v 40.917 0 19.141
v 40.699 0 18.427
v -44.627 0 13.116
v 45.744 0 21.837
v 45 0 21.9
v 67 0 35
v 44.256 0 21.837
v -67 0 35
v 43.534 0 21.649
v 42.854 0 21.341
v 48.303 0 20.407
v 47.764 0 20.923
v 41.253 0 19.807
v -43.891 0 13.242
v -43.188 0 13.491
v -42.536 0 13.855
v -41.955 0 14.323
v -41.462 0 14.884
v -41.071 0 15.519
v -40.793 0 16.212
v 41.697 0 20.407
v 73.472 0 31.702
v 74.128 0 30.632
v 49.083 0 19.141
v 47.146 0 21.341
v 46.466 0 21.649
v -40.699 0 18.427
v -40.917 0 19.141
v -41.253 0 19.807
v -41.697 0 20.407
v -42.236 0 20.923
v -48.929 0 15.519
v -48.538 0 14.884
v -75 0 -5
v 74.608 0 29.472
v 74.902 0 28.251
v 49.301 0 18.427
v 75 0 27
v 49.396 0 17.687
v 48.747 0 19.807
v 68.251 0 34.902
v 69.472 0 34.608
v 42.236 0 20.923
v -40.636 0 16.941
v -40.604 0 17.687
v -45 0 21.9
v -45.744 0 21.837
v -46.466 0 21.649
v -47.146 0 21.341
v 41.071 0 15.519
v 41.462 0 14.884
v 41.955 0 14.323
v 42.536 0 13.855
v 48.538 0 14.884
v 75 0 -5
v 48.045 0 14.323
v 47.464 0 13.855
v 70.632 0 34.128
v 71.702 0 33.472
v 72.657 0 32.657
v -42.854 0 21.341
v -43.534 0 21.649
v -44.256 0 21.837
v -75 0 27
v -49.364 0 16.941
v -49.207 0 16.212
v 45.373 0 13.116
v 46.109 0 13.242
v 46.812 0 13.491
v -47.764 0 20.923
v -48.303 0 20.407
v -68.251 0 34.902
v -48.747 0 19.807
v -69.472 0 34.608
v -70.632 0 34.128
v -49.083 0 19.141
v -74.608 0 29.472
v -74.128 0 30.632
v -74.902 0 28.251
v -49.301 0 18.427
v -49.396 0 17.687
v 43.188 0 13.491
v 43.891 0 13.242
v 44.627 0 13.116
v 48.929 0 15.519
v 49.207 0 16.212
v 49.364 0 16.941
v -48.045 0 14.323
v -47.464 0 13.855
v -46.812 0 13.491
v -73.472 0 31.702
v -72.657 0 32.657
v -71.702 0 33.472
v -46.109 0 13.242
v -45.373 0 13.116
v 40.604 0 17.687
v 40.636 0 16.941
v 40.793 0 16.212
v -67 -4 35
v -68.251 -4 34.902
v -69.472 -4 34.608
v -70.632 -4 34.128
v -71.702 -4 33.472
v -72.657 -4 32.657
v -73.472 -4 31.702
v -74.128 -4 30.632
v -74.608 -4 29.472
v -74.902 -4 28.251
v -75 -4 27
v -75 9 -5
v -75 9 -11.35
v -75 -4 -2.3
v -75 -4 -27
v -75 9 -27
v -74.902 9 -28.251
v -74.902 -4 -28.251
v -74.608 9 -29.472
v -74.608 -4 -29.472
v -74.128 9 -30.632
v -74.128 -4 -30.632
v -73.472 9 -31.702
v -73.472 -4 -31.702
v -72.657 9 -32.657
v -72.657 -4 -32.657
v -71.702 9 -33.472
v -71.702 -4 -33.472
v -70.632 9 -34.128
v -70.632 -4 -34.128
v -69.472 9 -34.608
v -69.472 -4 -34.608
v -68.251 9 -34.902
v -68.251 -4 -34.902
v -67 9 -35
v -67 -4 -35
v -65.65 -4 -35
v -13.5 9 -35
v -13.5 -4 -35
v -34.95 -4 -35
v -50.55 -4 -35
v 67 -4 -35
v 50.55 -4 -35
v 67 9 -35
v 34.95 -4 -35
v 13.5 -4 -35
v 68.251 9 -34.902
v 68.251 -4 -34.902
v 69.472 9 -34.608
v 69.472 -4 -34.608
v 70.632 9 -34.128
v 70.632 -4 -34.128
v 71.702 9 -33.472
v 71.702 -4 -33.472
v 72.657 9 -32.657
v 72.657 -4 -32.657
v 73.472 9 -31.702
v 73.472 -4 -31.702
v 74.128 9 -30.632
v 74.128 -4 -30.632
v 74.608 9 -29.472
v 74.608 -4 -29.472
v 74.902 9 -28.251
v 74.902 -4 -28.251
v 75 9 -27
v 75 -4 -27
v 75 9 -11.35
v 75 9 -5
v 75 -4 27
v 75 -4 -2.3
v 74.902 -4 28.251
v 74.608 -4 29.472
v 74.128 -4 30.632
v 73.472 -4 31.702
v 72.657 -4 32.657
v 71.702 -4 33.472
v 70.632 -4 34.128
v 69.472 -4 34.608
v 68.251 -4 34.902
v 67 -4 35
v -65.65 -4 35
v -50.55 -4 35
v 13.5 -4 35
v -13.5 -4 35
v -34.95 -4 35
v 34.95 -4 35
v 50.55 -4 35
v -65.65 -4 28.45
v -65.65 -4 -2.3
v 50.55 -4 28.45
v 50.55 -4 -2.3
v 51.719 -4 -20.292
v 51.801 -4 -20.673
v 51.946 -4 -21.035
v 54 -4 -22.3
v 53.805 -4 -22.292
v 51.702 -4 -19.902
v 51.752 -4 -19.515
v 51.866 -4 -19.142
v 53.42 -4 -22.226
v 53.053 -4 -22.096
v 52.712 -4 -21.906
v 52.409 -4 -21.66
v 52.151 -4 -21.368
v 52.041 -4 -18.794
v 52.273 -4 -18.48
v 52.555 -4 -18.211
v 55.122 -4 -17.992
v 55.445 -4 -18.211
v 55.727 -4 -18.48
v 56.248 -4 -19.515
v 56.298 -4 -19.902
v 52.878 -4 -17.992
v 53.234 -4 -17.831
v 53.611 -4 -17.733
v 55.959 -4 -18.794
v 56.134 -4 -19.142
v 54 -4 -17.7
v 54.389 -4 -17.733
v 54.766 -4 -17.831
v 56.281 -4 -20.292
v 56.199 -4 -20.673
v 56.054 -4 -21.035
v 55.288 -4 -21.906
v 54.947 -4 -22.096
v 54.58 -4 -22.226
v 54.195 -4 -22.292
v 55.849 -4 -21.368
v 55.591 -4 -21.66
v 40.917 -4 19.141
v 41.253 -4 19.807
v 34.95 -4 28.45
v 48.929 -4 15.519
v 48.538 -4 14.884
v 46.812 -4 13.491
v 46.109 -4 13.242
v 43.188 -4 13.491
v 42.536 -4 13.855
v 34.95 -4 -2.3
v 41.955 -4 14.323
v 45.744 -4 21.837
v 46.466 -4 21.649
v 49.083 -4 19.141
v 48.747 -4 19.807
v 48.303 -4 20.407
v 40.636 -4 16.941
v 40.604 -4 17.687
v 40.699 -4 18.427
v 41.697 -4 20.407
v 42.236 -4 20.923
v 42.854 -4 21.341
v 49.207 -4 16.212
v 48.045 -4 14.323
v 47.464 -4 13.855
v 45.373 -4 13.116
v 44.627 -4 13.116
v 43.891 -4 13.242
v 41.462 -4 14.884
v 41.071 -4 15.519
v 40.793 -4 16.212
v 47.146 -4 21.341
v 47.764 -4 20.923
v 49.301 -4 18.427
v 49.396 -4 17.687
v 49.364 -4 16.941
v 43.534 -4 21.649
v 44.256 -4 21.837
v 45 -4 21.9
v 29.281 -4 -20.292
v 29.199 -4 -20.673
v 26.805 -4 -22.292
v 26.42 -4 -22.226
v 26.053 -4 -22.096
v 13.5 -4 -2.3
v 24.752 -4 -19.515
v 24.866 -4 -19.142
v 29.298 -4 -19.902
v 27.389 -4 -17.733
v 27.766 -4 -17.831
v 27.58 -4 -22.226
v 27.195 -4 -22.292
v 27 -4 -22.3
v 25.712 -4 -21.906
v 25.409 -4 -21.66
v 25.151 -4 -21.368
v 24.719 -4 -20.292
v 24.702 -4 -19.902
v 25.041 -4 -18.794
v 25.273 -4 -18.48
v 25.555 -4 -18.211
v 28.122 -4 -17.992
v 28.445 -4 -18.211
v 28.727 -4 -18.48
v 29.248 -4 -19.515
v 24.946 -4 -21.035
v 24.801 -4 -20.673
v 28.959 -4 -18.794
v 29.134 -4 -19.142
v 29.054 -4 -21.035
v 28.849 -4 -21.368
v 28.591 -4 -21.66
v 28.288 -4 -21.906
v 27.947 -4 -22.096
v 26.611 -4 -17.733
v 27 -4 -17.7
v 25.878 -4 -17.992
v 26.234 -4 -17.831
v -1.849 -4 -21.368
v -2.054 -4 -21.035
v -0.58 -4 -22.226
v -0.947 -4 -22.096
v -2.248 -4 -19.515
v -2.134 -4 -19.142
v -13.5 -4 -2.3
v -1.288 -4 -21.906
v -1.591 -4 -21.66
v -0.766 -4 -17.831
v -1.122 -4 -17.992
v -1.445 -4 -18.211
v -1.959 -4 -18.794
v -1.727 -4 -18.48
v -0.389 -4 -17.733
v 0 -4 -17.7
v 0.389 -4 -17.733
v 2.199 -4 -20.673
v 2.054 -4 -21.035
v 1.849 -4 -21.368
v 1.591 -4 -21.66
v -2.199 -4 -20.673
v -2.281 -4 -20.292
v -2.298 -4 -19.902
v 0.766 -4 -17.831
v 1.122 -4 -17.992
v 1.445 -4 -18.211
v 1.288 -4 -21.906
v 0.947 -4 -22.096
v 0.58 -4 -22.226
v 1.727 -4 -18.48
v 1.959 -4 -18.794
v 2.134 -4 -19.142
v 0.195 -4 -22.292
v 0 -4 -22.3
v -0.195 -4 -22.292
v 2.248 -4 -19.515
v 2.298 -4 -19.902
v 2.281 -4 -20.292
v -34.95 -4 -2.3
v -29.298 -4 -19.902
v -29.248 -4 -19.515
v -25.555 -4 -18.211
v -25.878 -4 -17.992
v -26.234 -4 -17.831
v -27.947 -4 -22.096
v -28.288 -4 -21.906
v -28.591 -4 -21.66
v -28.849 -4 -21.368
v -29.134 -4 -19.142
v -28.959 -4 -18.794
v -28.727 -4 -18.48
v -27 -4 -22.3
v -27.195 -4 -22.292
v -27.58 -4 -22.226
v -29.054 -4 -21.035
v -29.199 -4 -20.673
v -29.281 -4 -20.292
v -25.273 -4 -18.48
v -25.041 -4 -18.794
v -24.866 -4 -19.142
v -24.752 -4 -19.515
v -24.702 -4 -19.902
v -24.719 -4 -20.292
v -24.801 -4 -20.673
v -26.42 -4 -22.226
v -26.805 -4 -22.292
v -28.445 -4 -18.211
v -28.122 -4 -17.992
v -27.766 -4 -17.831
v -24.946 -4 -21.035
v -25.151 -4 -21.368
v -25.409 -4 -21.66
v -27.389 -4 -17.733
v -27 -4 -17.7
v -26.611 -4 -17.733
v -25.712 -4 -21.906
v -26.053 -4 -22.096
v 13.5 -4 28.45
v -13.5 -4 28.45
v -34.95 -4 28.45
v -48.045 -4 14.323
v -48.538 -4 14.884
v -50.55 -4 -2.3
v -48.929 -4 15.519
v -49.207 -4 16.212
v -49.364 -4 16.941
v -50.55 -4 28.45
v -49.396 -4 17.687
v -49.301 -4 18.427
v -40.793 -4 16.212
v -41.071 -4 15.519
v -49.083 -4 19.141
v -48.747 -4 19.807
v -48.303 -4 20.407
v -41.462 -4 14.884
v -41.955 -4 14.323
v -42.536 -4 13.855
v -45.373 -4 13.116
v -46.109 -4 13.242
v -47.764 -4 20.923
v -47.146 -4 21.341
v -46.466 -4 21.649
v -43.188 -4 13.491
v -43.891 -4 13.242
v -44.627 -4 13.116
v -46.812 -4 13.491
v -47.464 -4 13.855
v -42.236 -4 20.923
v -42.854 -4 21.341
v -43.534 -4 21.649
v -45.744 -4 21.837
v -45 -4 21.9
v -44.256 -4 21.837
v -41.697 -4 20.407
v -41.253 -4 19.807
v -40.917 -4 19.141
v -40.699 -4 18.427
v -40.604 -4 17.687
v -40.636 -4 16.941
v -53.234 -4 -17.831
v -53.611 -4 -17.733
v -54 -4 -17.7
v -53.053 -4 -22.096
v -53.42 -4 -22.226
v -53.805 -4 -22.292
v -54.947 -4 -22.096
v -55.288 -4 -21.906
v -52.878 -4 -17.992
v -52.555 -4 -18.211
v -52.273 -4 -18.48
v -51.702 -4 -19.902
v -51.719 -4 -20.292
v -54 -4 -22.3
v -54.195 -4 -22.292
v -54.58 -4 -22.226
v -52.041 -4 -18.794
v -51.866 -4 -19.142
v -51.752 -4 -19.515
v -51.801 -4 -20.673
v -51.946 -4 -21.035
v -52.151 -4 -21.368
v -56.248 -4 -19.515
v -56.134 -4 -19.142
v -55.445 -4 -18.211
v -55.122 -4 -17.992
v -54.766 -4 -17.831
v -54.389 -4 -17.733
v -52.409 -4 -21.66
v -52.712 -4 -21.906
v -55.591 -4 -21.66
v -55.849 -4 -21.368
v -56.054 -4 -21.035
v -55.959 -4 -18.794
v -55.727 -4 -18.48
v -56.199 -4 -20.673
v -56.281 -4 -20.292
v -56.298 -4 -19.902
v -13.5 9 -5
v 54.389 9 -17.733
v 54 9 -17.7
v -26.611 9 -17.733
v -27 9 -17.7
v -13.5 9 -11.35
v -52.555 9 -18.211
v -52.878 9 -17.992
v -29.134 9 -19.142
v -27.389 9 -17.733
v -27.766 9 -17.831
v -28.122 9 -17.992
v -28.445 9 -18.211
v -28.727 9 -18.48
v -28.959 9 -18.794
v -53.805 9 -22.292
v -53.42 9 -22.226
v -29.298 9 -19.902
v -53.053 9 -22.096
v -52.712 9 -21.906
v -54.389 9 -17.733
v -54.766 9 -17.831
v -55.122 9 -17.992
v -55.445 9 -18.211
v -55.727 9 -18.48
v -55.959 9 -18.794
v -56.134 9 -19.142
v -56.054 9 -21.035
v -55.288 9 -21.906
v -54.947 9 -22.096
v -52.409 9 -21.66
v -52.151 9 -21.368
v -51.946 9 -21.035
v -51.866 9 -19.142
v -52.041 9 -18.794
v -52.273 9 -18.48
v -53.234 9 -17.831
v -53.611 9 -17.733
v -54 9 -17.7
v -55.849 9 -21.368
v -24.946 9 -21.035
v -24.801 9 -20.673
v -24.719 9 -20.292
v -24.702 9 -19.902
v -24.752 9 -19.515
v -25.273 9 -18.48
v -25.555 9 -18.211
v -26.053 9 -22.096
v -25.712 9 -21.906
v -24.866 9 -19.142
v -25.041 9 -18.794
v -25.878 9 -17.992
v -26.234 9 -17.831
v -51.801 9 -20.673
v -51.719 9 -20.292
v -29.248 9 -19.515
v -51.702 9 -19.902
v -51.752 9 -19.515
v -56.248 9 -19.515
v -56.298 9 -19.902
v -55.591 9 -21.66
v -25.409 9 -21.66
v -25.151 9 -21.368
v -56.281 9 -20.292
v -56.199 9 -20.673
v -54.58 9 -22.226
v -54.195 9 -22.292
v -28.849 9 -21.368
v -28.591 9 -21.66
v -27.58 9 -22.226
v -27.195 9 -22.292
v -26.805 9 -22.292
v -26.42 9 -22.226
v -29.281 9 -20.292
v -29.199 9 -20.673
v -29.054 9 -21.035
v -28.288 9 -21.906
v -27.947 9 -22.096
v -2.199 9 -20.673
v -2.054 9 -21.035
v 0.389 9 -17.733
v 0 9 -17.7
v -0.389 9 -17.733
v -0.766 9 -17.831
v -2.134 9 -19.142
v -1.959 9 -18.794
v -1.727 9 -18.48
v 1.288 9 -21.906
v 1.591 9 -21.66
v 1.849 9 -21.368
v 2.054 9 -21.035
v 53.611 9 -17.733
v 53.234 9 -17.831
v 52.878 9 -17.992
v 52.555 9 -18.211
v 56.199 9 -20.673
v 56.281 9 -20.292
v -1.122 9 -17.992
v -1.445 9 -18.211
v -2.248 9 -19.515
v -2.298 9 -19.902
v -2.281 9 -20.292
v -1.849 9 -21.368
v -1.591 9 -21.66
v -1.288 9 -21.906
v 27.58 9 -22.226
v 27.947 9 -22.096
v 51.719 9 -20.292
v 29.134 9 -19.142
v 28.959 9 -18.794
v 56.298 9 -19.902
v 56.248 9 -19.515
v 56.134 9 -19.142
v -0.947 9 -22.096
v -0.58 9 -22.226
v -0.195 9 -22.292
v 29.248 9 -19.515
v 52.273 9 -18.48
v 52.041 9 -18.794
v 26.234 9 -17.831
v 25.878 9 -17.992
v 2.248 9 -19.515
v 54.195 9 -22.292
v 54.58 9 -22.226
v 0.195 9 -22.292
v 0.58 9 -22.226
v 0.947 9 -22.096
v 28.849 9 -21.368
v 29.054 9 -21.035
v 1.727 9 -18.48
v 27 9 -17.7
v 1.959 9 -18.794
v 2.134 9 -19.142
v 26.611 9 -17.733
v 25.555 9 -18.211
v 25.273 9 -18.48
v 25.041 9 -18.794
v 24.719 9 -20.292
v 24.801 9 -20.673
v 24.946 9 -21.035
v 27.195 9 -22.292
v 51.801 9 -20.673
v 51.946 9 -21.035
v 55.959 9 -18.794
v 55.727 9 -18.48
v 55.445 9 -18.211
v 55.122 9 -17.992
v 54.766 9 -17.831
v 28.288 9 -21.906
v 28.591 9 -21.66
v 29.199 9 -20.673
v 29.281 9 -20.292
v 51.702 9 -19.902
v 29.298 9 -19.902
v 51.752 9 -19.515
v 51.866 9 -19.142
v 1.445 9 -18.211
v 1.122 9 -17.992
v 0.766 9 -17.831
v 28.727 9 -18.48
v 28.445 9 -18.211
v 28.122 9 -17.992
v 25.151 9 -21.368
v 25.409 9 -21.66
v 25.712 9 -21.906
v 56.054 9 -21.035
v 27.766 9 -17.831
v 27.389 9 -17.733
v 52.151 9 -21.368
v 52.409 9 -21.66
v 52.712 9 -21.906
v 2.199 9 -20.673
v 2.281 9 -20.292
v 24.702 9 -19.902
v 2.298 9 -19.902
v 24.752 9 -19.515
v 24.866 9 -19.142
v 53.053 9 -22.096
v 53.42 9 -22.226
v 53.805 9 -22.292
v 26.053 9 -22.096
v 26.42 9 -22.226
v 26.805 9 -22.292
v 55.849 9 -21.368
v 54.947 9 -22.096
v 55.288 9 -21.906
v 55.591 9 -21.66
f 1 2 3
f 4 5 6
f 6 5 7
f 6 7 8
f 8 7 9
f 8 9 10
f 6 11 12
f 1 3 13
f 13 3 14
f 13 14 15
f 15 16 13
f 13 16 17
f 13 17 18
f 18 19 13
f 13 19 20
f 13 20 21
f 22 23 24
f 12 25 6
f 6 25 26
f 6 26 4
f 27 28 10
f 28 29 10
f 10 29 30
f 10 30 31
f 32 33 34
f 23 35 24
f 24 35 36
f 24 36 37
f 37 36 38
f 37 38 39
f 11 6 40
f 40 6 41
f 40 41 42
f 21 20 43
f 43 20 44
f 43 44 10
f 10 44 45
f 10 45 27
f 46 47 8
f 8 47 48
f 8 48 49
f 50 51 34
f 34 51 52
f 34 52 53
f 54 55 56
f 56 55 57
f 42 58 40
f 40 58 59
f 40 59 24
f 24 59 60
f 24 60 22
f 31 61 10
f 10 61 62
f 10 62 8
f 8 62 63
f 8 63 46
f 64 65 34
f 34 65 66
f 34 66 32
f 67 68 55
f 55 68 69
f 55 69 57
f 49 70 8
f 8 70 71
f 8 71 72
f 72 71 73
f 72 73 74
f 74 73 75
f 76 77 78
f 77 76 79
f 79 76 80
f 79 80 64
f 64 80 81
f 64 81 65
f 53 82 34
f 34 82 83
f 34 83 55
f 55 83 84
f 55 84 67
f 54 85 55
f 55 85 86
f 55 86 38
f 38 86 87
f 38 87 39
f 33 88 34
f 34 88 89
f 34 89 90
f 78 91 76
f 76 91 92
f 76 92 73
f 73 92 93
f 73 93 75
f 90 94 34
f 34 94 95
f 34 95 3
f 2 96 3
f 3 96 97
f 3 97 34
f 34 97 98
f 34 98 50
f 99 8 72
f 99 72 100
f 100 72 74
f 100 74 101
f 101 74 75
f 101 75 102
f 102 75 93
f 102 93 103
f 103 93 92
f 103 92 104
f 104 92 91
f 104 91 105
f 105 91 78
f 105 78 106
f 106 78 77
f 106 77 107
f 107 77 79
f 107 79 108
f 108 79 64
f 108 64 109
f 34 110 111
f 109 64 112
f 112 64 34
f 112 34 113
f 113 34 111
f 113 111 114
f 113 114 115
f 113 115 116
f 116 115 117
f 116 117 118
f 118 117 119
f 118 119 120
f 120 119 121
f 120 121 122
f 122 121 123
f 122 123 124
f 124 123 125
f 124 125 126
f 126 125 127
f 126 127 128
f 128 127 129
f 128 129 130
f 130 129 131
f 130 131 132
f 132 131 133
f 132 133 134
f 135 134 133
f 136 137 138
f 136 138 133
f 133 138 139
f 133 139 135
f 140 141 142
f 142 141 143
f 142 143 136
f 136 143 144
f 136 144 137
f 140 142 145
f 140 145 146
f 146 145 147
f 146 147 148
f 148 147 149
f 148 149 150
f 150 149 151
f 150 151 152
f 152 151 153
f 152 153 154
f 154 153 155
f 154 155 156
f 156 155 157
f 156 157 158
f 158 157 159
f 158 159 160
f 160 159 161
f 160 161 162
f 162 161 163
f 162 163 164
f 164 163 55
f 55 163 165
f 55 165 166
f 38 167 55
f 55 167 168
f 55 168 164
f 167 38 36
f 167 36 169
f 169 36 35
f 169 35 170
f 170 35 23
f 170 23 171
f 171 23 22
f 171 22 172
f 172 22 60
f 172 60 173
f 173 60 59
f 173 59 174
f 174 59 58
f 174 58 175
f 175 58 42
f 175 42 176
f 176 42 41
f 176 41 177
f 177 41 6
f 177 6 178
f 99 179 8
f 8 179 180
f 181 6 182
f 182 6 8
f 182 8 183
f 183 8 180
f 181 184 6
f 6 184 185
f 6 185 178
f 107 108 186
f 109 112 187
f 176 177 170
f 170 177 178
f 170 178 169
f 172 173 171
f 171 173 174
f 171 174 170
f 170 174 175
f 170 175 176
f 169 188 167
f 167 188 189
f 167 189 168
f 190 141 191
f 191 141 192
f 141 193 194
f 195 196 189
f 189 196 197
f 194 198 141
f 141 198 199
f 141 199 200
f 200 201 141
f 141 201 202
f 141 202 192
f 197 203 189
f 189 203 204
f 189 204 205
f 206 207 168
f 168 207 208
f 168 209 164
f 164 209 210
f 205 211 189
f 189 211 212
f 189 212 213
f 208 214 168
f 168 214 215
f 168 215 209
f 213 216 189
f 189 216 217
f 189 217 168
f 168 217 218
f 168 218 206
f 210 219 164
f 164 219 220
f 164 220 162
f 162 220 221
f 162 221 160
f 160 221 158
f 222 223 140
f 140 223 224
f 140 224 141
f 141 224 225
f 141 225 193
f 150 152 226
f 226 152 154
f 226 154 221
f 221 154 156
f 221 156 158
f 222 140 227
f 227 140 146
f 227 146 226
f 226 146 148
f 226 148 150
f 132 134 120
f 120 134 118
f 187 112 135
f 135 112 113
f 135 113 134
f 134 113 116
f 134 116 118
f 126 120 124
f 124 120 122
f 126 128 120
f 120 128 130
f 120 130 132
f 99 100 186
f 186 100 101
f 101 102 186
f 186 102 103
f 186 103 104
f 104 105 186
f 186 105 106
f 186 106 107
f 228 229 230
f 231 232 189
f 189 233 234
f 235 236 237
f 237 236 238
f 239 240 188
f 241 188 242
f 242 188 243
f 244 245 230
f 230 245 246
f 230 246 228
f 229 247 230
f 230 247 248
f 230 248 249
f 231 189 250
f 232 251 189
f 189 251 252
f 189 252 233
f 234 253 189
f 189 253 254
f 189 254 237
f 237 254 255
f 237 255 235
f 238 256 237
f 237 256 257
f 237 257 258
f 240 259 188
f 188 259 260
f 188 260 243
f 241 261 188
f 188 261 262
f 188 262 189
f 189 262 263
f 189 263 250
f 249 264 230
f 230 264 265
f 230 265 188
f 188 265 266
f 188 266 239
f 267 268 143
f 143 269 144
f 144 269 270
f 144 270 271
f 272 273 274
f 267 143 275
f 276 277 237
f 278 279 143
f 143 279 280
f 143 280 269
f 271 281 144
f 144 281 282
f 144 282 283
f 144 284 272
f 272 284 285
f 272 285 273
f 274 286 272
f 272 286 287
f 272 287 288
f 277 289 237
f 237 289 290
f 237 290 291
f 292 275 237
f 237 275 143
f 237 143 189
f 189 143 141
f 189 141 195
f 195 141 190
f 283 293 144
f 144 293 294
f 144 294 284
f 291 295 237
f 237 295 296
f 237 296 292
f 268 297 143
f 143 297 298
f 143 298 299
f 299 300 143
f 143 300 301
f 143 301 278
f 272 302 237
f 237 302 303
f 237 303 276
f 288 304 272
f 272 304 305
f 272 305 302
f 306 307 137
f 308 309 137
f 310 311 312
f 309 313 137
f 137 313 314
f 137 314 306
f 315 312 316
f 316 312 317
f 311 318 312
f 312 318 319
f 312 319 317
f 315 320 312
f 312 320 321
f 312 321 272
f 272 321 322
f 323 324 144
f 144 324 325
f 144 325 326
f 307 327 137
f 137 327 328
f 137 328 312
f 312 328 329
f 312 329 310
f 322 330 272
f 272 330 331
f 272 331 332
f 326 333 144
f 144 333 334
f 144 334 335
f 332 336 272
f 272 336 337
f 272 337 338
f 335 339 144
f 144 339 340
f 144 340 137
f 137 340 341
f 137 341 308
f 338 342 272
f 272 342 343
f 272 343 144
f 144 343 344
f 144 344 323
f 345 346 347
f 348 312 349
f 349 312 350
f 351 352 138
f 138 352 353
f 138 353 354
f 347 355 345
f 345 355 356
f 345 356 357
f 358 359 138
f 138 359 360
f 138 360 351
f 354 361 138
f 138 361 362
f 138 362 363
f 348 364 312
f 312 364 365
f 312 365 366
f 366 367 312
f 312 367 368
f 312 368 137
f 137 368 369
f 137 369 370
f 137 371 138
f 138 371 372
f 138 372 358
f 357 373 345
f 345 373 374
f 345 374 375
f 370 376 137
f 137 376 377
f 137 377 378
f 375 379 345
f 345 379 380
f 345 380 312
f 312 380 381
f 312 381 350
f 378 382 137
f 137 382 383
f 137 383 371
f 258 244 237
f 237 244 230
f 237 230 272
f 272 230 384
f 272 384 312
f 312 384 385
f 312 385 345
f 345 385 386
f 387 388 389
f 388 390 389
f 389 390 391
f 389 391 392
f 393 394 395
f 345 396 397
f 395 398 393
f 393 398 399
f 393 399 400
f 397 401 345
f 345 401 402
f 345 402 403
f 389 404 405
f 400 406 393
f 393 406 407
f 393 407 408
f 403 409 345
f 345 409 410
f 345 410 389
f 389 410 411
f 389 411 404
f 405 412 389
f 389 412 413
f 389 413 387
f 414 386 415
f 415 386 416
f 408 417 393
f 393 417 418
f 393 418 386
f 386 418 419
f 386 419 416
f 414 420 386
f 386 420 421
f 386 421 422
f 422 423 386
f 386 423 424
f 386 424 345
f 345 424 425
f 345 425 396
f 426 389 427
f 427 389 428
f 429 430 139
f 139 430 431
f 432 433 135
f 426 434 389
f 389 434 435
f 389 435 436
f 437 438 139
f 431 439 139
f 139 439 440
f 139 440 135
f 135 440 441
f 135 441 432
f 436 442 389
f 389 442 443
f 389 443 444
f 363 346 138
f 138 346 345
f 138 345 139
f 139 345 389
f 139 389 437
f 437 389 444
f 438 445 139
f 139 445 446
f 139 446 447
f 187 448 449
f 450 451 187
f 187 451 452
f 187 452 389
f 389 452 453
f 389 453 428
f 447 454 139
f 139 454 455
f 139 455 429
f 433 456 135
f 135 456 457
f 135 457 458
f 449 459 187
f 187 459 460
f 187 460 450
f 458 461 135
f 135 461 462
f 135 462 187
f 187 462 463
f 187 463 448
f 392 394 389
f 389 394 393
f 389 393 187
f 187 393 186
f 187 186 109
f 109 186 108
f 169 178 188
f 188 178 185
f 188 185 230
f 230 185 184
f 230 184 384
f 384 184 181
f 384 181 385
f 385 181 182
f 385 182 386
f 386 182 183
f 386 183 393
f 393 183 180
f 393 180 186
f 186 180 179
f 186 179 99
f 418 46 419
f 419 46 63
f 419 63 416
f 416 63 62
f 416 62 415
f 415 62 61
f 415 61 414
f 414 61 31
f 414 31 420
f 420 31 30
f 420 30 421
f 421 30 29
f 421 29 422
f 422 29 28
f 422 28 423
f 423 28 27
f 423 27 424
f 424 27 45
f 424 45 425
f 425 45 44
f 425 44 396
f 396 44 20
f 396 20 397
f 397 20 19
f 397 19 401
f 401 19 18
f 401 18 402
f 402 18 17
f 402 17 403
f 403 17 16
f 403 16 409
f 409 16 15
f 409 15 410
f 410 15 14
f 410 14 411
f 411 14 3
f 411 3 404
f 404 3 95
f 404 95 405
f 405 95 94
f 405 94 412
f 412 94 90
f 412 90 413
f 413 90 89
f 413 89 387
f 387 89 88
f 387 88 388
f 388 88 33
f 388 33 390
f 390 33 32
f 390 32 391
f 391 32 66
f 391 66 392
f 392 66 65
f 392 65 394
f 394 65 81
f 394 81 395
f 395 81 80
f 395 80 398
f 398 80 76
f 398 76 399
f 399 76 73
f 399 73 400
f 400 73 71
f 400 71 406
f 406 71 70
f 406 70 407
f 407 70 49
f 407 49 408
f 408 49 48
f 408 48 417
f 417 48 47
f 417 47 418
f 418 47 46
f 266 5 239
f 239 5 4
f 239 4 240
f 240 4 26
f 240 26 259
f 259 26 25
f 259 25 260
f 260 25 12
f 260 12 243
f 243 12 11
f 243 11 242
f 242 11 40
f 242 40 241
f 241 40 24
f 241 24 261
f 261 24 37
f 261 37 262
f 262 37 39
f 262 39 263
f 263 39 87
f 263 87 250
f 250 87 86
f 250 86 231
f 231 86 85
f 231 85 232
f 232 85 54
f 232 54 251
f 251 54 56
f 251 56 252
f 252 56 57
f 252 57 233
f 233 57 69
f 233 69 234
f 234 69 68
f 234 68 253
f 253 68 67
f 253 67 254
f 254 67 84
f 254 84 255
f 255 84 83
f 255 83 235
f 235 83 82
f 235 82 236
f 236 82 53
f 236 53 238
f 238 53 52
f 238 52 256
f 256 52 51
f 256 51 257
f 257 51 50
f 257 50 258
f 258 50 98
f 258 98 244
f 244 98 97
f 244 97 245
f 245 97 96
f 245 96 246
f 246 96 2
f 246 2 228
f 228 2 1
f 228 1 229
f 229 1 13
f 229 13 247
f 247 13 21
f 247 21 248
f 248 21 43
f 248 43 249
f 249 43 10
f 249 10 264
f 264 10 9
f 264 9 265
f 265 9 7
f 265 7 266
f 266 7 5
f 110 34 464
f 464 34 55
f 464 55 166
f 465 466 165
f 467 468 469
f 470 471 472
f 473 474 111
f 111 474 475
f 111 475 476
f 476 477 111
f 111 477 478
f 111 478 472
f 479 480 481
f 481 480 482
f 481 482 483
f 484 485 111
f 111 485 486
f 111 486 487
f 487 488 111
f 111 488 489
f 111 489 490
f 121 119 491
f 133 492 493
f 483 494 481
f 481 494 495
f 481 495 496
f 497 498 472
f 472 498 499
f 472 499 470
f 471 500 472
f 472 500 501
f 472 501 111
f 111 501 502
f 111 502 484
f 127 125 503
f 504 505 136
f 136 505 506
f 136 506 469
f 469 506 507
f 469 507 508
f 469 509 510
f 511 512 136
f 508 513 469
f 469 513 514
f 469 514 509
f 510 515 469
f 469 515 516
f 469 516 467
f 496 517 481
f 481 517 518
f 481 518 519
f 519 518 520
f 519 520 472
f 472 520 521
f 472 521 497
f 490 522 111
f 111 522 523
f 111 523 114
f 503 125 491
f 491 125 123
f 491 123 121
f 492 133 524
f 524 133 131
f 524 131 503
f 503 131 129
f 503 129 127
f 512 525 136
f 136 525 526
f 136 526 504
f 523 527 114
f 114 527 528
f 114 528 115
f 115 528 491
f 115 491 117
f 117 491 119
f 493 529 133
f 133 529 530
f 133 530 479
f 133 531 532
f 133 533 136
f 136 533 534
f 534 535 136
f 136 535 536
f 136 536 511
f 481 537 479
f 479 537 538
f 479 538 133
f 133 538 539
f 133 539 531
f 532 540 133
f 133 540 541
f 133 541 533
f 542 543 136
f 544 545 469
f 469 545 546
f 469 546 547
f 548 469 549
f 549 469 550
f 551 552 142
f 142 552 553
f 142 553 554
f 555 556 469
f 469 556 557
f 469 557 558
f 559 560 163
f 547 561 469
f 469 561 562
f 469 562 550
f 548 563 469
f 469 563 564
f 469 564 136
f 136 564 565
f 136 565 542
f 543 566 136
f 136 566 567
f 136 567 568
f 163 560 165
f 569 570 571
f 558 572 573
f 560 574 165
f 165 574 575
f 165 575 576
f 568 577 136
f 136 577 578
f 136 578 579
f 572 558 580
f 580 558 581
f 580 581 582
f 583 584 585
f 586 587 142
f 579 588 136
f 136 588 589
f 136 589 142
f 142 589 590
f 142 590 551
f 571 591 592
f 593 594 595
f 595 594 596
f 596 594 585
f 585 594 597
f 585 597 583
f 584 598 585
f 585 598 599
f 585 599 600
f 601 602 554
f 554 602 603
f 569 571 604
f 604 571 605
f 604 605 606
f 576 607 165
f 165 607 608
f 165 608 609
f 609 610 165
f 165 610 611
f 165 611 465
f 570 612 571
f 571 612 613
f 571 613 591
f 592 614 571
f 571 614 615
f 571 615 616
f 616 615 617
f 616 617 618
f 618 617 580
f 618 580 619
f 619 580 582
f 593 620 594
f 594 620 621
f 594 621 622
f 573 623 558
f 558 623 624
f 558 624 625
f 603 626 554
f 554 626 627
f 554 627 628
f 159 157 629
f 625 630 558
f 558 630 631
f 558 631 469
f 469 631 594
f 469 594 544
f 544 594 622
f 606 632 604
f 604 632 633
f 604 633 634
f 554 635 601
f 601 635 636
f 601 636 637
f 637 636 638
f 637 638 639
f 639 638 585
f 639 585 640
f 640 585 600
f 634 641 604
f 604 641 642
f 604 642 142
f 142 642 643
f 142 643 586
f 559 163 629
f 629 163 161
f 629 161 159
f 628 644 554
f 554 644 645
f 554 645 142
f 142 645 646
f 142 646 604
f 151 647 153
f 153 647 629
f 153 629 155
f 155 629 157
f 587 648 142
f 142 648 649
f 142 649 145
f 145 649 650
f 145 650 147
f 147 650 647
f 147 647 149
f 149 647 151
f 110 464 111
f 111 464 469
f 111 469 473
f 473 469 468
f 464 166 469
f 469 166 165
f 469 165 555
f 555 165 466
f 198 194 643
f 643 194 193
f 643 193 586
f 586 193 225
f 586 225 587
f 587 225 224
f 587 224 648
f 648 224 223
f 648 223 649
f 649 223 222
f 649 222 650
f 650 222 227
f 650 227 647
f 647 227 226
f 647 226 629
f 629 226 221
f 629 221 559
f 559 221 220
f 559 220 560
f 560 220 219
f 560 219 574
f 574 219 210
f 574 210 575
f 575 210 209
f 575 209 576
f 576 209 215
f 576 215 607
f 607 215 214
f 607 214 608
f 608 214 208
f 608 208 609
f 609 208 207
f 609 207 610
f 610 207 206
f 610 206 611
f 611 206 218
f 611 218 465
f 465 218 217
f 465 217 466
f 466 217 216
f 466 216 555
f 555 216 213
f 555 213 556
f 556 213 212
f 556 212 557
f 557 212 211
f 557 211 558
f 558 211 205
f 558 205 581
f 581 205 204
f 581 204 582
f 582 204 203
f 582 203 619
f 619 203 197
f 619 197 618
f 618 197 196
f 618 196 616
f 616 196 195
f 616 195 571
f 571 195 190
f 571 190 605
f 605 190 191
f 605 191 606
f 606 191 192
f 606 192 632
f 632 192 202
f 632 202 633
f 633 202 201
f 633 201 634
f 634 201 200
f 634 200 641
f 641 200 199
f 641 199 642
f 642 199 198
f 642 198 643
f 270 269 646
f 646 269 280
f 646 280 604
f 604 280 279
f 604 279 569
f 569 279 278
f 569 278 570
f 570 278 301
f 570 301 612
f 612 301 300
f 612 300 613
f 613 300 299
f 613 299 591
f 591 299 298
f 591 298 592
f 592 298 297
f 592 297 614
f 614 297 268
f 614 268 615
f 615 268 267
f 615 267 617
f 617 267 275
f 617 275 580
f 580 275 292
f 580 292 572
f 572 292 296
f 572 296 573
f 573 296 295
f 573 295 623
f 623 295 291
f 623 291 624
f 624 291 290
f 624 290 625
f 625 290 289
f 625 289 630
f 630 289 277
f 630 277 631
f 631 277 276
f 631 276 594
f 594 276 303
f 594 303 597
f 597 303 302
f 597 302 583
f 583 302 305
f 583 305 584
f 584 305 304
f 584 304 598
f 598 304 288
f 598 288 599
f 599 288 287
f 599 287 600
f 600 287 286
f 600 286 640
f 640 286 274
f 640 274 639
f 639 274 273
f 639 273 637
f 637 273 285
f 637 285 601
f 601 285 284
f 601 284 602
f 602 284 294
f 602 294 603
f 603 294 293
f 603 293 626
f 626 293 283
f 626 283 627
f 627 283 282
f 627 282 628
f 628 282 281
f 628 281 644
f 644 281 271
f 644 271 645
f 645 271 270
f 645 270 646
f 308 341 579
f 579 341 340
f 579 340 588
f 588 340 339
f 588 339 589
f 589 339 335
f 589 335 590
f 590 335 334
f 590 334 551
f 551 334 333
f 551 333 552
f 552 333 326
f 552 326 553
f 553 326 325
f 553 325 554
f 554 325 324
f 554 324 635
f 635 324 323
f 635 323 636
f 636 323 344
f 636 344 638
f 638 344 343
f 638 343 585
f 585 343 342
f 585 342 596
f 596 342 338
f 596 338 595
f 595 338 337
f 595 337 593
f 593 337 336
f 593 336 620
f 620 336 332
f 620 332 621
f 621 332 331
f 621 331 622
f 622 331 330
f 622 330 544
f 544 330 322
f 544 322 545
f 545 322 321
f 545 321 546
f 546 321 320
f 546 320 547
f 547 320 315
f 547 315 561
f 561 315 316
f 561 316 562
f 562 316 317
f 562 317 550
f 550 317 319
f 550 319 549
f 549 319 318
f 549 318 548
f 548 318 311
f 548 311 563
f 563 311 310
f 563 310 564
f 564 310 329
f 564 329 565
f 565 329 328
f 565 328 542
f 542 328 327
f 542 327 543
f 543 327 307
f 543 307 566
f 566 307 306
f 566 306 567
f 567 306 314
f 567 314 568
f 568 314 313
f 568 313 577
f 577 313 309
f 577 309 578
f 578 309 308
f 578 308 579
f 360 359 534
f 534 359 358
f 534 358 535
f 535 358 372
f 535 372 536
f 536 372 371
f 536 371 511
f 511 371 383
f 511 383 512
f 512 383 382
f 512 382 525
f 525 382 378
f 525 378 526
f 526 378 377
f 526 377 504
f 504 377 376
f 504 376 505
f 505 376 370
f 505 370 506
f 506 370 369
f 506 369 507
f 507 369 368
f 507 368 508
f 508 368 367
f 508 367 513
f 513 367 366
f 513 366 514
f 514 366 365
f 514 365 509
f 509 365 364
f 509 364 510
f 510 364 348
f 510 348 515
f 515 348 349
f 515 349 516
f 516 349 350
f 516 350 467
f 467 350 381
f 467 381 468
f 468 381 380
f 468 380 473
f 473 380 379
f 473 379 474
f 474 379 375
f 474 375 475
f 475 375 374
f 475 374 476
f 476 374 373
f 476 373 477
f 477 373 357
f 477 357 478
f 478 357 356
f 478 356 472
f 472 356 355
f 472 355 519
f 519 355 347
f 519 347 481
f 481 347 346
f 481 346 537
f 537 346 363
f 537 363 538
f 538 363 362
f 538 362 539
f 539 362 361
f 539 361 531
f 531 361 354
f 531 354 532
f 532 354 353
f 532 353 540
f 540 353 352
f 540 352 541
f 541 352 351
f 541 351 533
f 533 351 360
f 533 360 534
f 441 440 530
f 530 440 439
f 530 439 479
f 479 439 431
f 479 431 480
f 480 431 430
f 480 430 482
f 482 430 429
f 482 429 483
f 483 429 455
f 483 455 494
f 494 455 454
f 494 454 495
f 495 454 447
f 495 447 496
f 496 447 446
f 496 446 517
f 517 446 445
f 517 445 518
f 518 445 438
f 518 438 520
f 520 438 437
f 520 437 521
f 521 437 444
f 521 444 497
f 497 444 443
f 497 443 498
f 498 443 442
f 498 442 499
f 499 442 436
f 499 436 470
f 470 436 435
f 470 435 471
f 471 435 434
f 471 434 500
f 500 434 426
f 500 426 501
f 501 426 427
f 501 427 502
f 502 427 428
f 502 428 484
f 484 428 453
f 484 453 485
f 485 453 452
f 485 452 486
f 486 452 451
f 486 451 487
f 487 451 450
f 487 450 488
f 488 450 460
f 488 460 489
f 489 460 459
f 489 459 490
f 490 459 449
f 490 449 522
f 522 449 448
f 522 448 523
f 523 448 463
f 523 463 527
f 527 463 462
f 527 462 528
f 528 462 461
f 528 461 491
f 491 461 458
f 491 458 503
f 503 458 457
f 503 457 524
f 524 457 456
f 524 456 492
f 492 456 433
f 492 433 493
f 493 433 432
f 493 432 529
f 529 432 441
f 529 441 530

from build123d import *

# Parameters (mm, degrees)
SKETCH1_R           = 4.4
BOSS_EXTRUDE1_DEPTH = 4
BOSS_EXTRUDE2_DEPTH = 9
SKETCH3_R           = 2.3
CUT_EXTRUDE1_DEPTH  = 13


with BuildPart() as part:
    # Sketch1 → Boss-Extrude1 (new body)
    with BuildSketch(Plane(origin=(0, 0, 0), x_dir=(1, 0, 0), z_dir=(0, 1, 0))):
        with BuildLine():
            Line((-67, 35), (67, 35))
            ThreePointArc((67, 35), (72.656854249, 32.656854249), (75, 27))
            Line((75, 27), (75, -27))
            ThreePointArc((75, -27), (72.656854249, -32.656854249), (67, -35))
            Line((67, -35), (-67, -35))
            ThreePointArc((-67, -35), (-72.656854249, -32.656854249), (-75, -27))
            Line((-75, -27), (-75, 27))
            ThreePointArc((-75, 27), (-72.656854249, 32.656854249), (-67, 35))
        make_face()
        with Locations((-45, -17.5)):
            Circle(SKETCH1_R, mode=Mode.SUBTRACT)
        with Locations((45, -17.5)):
            Circle(SKETCH1_R, mode=Mode.SUBTRACT)
    extrude(amount=-BOSS_EXTRUDE1_DEPTH)

    # Sketch2 → Boss-Extrude2 (add)
    with BuildSketch(Plane(origin=(0, 0, 0), x_dir=(1, 0, 0), z_dir=(0, 1, 0))):
        with BuildLine():
            Line((-75, 5), (75, 5))
            Line((75, 5), (75, 27))
            ThreePointArc((75, 27), (72.656854249, 32.656854249), (67, 35))
            Line((67, 35), (-67, 35))
            ThreePointArc((-67, 35), (-72.656854249, 32.656854249), (-75, 27))
            Line((-75, 27), (-75, 5))
        make_face()
    extrude(amount=BOSS_EXTRUDE2_DEPTH)

    # Sketch3 → Cut-Extrude1 (cut)
    with BuildSketch(Plane(origin=(0, 9, 0), x_dir=(1, 0, 0), z_dir=(0, 1, 0))):
        with Locations((-54, 20)):
            Circle(SKETCH3_R)
        with Locations((-27, 20)):
            Circle(SKETCH3_R)
        with Locations((0, 20)):
            Circle(SKETCH3_R)
        with Locations((27, 20)):
            Circle(SKETCH3_R)
        with Locations((54, 20)):
            Circle(SKETCH3_R)
    extrude(amount=-CUT_EXTRUDE1_DEPTH, mode=Mode.SUBTRACT)


solid = part.part
